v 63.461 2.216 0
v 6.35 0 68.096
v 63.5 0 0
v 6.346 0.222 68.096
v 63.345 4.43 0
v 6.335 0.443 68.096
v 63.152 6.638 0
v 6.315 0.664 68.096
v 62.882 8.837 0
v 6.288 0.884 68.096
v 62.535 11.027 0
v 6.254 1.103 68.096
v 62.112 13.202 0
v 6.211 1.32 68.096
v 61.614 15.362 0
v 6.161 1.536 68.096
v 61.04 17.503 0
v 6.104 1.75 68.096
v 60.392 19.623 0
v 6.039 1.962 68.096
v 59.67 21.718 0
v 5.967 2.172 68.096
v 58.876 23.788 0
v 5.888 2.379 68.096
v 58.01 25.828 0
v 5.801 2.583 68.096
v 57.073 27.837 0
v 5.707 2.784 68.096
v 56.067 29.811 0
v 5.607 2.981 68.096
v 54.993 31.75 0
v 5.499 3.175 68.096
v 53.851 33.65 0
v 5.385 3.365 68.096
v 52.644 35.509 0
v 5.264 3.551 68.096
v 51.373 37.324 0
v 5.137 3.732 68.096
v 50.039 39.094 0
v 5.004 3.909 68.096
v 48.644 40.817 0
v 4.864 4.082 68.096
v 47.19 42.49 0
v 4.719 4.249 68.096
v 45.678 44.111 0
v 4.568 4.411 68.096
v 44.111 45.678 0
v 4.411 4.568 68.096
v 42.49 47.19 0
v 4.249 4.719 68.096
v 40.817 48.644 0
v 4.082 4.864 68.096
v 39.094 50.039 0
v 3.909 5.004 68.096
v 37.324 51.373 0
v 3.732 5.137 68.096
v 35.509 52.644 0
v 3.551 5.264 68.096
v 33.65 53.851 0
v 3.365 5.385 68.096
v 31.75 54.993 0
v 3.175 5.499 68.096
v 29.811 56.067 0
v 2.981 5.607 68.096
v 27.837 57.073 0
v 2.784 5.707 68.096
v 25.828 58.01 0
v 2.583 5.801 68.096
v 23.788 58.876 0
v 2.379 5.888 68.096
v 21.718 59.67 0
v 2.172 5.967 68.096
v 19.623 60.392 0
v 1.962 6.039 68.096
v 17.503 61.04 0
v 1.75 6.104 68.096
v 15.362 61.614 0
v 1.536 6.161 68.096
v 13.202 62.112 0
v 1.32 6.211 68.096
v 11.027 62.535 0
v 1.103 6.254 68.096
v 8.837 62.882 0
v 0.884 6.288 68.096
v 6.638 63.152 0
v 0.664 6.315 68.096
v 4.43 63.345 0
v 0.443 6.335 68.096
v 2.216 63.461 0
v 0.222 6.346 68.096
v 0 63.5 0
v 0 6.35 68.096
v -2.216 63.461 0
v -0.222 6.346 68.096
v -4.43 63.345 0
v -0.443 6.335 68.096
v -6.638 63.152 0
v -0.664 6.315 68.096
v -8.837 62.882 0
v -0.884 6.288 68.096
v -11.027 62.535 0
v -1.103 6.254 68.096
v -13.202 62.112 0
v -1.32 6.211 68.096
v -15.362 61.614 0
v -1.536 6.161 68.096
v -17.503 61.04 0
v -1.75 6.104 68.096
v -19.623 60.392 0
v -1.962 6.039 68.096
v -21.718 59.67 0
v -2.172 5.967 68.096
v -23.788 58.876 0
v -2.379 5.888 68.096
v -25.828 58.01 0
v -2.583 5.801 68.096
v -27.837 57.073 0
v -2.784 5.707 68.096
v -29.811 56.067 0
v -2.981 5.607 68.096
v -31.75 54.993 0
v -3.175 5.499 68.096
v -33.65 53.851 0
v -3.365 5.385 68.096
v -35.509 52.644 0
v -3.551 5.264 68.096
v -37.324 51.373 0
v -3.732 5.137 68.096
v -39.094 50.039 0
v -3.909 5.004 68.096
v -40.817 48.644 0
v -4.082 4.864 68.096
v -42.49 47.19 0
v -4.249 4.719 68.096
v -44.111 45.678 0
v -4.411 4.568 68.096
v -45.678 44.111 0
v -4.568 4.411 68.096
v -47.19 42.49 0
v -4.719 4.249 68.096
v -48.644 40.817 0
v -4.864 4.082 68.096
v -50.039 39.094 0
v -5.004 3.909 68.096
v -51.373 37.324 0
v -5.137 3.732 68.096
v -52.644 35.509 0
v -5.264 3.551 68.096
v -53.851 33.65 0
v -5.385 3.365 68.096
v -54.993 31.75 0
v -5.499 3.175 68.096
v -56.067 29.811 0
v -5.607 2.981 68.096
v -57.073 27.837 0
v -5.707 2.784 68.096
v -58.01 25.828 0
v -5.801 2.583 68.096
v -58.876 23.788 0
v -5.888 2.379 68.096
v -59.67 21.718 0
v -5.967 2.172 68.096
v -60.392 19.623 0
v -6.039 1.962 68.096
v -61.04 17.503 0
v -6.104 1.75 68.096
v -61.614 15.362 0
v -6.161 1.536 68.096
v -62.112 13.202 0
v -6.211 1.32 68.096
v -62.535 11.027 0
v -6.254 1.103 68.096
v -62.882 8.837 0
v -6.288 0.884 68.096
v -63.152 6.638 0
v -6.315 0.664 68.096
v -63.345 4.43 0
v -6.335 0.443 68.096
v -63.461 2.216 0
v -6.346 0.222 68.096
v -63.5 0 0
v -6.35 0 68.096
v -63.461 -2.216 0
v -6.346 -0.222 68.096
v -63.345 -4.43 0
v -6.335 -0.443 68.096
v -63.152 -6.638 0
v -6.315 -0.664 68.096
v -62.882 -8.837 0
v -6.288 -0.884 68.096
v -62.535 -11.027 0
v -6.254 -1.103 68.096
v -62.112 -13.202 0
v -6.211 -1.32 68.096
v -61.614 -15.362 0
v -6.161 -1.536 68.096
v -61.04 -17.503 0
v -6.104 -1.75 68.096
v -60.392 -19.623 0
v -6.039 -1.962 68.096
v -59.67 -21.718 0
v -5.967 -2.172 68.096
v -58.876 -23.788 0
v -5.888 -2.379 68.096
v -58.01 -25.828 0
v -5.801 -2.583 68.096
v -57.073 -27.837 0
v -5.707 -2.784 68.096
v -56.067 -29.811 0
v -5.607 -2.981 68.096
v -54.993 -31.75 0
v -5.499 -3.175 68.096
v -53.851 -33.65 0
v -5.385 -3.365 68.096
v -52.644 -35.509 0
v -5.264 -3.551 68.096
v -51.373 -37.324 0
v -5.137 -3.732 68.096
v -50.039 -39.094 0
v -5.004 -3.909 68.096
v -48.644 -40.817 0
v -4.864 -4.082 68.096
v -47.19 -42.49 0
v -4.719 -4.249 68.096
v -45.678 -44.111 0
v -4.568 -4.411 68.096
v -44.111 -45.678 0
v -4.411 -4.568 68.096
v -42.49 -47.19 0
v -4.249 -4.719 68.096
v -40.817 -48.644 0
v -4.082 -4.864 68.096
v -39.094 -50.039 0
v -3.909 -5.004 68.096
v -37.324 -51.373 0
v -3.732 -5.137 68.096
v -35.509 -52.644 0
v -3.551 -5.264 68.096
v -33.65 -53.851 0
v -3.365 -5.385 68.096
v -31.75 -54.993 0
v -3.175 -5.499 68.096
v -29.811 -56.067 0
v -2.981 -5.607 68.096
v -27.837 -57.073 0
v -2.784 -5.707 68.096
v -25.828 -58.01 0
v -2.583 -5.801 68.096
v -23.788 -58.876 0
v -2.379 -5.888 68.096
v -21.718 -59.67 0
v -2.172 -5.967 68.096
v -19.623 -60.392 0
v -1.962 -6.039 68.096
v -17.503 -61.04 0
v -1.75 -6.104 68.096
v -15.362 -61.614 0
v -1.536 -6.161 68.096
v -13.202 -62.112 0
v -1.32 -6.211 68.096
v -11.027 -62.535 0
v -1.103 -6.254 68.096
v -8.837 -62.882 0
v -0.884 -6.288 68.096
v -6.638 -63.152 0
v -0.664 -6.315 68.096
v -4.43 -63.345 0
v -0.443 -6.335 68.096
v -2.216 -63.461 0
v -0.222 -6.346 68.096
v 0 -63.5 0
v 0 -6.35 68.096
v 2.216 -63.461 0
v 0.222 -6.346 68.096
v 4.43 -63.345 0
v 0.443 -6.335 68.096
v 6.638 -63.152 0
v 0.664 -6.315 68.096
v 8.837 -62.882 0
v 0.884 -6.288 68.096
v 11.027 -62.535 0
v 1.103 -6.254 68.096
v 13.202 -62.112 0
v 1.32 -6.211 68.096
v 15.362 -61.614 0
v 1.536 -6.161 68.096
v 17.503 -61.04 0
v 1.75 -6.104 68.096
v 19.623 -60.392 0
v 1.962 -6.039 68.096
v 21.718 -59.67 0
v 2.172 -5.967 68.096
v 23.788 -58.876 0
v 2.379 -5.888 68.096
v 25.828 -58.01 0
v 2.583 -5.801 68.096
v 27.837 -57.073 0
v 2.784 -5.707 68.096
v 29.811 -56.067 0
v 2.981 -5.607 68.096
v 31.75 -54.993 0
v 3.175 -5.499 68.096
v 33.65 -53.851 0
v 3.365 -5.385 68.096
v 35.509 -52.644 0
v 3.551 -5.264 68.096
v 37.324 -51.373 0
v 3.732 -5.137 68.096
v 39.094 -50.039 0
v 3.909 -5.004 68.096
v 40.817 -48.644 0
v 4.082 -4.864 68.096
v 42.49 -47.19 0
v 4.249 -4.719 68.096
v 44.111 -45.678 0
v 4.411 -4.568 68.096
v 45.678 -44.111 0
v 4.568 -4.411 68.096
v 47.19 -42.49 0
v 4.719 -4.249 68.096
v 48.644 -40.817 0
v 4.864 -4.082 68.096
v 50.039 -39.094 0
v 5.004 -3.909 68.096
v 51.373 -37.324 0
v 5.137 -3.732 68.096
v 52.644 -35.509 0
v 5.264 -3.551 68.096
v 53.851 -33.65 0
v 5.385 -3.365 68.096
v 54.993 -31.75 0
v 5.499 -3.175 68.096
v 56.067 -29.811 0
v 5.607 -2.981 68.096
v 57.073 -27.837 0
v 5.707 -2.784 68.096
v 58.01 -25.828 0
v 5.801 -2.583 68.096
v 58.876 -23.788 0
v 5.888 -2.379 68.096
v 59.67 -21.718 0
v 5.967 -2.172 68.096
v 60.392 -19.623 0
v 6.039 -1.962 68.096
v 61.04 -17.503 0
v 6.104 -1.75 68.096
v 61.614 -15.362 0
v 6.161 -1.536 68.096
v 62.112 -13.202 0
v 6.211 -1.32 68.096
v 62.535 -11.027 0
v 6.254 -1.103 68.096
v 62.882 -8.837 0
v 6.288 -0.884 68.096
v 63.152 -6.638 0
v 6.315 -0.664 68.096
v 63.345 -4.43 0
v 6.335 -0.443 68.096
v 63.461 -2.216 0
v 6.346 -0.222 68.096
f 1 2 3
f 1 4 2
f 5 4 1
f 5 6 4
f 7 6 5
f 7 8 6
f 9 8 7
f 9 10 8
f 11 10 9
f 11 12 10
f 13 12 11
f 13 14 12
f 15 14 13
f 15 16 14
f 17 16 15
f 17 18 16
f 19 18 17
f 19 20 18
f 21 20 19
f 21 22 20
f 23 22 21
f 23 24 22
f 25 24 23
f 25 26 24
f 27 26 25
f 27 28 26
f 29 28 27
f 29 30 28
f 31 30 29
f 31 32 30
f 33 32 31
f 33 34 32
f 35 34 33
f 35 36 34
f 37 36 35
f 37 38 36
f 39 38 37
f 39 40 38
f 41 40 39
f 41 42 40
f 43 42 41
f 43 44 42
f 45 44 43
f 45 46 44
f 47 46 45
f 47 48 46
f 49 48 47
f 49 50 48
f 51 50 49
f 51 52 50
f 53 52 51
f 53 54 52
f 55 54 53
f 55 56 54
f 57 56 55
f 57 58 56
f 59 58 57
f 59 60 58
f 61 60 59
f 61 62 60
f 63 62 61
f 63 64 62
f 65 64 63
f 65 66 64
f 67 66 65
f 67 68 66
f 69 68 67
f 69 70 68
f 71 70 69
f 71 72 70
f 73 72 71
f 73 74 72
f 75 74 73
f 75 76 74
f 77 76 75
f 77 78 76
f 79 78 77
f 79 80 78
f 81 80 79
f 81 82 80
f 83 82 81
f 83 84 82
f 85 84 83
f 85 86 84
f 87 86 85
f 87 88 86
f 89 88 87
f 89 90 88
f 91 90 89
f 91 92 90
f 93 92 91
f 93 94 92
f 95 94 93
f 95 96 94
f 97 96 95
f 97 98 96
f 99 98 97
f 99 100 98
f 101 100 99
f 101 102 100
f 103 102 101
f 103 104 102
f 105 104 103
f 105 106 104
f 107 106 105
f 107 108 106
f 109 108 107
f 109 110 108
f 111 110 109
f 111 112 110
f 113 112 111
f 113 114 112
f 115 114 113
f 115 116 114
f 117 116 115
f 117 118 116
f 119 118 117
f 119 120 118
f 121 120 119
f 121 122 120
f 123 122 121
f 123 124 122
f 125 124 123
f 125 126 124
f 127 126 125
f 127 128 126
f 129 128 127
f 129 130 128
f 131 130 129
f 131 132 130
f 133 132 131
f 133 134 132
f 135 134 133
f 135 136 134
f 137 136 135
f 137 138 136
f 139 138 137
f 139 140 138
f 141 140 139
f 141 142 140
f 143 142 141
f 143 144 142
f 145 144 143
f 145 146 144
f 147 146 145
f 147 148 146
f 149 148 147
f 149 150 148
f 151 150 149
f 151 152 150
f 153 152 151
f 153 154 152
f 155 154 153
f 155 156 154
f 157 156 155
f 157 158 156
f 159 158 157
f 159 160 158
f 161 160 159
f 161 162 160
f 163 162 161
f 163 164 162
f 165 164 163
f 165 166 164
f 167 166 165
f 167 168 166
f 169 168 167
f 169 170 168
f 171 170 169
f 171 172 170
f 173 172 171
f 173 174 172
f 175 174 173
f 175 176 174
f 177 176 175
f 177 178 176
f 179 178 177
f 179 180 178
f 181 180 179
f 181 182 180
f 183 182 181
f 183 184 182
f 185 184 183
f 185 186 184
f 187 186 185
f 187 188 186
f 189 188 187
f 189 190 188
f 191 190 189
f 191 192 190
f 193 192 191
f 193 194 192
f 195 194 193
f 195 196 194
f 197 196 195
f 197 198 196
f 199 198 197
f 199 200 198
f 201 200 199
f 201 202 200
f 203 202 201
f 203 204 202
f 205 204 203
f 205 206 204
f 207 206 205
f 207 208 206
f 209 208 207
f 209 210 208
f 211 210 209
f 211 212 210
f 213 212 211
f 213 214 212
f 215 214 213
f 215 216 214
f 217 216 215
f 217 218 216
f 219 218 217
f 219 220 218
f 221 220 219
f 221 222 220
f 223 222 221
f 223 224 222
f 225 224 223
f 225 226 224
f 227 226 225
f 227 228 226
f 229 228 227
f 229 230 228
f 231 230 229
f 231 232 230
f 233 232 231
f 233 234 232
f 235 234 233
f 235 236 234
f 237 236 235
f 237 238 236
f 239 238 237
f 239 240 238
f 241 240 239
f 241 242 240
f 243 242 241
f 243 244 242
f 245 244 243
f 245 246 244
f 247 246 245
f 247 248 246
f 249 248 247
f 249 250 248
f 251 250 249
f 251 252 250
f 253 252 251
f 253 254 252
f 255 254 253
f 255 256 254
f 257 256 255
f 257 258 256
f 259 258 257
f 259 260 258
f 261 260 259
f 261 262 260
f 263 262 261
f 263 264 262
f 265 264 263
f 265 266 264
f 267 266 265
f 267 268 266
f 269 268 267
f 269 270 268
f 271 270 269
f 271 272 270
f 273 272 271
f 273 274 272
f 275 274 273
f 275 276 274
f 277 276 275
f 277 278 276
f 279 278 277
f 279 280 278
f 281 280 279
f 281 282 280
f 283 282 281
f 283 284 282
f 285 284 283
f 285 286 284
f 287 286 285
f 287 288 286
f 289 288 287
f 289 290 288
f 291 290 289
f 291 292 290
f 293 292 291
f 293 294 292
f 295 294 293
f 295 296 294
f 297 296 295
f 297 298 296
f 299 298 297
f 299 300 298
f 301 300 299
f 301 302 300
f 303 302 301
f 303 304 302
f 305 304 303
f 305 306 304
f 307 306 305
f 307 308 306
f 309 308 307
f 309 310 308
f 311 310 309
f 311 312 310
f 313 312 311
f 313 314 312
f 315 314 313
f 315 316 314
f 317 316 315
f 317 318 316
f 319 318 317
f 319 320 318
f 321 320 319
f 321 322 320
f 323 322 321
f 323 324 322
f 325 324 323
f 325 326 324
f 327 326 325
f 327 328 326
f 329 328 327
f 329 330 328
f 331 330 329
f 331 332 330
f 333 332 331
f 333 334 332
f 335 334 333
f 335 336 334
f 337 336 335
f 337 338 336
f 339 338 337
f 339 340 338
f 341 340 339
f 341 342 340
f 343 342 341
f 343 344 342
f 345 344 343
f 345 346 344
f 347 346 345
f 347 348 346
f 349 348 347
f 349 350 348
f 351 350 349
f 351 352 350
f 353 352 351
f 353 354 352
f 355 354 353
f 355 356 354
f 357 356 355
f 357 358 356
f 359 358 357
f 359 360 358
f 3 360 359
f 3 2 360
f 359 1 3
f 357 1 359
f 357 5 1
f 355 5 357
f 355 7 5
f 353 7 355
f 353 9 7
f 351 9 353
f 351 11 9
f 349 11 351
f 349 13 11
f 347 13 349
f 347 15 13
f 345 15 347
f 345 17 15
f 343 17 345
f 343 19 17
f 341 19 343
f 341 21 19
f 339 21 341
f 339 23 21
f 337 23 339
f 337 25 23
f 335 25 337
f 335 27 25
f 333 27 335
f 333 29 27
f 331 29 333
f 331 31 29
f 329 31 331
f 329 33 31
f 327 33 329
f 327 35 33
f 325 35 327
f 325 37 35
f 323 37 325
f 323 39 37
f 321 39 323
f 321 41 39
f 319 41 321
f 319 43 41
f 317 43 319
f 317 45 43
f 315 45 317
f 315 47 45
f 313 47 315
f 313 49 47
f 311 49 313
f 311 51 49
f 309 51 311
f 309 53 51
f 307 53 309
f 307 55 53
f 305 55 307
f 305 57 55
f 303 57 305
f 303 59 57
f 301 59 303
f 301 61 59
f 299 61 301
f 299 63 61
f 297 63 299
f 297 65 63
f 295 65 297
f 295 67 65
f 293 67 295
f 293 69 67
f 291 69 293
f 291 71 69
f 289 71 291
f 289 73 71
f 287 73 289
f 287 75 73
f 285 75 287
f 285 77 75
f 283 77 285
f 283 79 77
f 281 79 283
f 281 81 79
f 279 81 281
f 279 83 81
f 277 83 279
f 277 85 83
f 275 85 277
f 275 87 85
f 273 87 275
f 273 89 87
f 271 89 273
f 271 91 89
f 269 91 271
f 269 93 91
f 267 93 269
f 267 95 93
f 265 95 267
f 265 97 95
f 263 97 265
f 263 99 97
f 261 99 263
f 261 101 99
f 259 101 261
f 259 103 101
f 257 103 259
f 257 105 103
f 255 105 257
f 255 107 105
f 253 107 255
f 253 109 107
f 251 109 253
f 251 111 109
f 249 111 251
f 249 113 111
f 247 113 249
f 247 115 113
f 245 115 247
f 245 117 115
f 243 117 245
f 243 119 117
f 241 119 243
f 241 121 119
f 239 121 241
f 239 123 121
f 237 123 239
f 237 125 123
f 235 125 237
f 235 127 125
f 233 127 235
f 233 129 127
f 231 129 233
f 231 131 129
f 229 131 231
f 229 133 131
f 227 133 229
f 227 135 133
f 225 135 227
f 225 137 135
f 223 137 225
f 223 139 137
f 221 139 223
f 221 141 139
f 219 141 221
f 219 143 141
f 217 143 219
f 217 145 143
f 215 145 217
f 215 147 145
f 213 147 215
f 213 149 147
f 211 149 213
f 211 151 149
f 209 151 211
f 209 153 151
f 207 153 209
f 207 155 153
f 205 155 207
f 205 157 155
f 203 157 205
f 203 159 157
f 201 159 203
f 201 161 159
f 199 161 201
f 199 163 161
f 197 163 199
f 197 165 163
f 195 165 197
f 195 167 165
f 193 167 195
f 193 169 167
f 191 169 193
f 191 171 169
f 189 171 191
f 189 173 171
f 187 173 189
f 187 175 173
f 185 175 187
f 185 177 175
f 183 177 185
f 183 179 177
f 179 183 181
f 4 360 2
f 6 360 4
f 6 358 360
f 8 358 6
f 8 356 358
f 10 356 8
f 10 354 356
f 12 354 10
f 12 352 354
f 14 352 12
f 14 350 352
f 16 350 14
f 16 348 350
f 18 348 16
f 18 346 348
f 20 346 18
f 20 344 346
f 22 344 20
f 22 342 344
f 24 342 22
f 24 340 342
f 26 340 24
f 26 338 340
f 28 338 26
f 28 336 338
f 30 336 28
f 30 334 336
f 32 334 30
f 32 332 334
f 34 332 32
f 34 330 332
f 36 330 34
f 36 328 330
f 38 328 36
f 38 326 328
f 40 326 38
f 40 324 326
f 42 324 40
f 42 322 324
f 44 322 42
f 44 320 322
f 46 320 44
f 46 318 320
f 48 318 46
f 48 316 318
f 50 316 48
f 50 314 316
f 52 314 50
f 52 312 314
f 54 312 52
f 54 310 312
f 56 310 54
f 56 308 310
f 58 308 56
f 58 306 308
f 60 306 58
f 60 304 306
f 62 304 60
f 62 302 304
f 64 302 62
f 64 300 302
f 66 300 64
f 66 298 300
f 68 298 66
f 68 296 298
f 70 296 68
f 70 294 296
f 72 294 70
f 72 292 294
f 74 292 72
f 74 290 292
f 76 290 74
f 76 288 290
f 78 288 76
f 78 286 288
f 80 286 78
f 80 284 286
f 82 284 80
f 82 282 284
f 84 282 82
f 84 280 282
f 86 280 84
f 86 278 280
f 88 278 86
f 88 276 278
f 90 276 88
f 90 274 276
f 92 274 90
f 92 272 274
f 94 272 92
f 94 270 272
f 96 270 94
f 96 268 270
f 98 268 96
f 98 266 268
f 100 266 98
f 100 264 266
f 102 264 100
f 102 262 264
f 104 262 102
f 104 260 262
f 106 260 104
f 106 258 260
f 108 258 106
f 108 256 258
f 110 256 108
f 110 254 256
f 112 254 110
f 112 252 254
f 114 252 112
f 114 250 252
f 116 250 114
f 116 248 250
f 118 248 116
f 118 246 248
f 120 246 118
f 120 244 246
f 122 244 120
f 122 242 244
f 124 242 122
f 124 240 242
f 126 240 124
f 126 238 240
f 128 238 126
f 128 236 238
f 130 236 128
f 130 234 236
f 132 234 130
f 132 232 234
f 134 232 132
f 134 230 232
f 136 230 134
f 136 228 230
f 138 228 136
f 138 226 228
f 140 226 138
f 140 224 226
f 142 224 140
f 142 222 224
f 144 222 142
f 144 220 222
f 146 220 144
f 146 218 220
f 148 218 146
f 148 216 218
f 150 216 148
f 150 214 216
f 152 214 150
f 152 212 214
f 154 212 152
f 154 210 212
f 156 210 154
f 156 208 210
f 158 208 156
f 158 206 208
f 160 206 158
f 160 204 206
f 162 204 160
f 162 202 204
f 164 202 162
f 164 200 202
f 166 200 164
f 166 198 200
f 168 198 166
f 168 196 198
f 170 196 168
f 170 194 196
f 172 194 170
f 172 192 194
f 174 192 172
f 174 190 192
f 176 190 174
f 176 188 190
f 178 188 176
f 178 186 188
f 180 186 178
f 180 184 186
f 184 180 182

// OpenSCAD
// Simple cone, from Mom's sketch: 5" across the base, 1/2" flat tip,
// 3 1/2" side.
//
// The 3 1/2" is written along the sloped side, so by default it is used as the
// SLANT length (base edge to tip). If it was meant to be the straight-up
// height instead, set side_is_slant = false.

/* [Size, in inches] */
base_diameter_in = 5;
side_in          = 3.5;
// true: side_in is measured along the slope. false: it's the vertical height
side_is_slant    = true;

/* [Shape] */
// 0 = solid cone. Otherwise the wall thickness (mm) of a hollow cone, open at the bottom
wall_mm          = 0;
// Diameter of the flat top/tip, in inches (0 = sharp point)
tip_diameter_in  = 0.5;

/* [Hidden] */
$fn = 180;
IN = 25.4;

r = base_diameter_in * IN / 2;
tip_r = tip_diameter_in * IN / 2;
s = side_in * IN;
// The slope runs from the base edge to the tip edge, so it spans r - tip_r
h = side_is_slant ? sqrt(s*s - (r - tip_r)^2) : s;

assert(!side_is_slant || s > r - tip_r,
       "Slant side must be longer than the base radius");

echo(str("Cone: ", base_diameter_in, "\" base, ",
         h / IN, "\" tall (", h, " mm), slant ",
         sqrt(h*h + (r - tip_r)^2) / IN, "\", tip ", tip_diameter_in, "\""));

module cone_body(r0, r1, hh) cylinder(h = hh, r1 = r0, r2 = r1);

if (wall_mm <= 0) {
    cone_body(r, tip_r, h);
} else {
    // Offset the inside surface by wall_mm measured perpendicular to the slope
    // and leave a wall_mm thick roof under the flat tip
    slope = atan(h / (r - tip_r));    // side angle from the bed
    dr    = wall_mm / sin(slope);     // horizontal inset that gives that wall
    difference() {
        cone_body(r, tip_r, h);
        translate([0, 0, -0.01])
            intersection() {
                cone_body(r - dr, 0, (r - dr) * tan(slope) + 0.01);
                cylinder(h = h - wall_mm + 0.01, r = r);
            }
    }
}
